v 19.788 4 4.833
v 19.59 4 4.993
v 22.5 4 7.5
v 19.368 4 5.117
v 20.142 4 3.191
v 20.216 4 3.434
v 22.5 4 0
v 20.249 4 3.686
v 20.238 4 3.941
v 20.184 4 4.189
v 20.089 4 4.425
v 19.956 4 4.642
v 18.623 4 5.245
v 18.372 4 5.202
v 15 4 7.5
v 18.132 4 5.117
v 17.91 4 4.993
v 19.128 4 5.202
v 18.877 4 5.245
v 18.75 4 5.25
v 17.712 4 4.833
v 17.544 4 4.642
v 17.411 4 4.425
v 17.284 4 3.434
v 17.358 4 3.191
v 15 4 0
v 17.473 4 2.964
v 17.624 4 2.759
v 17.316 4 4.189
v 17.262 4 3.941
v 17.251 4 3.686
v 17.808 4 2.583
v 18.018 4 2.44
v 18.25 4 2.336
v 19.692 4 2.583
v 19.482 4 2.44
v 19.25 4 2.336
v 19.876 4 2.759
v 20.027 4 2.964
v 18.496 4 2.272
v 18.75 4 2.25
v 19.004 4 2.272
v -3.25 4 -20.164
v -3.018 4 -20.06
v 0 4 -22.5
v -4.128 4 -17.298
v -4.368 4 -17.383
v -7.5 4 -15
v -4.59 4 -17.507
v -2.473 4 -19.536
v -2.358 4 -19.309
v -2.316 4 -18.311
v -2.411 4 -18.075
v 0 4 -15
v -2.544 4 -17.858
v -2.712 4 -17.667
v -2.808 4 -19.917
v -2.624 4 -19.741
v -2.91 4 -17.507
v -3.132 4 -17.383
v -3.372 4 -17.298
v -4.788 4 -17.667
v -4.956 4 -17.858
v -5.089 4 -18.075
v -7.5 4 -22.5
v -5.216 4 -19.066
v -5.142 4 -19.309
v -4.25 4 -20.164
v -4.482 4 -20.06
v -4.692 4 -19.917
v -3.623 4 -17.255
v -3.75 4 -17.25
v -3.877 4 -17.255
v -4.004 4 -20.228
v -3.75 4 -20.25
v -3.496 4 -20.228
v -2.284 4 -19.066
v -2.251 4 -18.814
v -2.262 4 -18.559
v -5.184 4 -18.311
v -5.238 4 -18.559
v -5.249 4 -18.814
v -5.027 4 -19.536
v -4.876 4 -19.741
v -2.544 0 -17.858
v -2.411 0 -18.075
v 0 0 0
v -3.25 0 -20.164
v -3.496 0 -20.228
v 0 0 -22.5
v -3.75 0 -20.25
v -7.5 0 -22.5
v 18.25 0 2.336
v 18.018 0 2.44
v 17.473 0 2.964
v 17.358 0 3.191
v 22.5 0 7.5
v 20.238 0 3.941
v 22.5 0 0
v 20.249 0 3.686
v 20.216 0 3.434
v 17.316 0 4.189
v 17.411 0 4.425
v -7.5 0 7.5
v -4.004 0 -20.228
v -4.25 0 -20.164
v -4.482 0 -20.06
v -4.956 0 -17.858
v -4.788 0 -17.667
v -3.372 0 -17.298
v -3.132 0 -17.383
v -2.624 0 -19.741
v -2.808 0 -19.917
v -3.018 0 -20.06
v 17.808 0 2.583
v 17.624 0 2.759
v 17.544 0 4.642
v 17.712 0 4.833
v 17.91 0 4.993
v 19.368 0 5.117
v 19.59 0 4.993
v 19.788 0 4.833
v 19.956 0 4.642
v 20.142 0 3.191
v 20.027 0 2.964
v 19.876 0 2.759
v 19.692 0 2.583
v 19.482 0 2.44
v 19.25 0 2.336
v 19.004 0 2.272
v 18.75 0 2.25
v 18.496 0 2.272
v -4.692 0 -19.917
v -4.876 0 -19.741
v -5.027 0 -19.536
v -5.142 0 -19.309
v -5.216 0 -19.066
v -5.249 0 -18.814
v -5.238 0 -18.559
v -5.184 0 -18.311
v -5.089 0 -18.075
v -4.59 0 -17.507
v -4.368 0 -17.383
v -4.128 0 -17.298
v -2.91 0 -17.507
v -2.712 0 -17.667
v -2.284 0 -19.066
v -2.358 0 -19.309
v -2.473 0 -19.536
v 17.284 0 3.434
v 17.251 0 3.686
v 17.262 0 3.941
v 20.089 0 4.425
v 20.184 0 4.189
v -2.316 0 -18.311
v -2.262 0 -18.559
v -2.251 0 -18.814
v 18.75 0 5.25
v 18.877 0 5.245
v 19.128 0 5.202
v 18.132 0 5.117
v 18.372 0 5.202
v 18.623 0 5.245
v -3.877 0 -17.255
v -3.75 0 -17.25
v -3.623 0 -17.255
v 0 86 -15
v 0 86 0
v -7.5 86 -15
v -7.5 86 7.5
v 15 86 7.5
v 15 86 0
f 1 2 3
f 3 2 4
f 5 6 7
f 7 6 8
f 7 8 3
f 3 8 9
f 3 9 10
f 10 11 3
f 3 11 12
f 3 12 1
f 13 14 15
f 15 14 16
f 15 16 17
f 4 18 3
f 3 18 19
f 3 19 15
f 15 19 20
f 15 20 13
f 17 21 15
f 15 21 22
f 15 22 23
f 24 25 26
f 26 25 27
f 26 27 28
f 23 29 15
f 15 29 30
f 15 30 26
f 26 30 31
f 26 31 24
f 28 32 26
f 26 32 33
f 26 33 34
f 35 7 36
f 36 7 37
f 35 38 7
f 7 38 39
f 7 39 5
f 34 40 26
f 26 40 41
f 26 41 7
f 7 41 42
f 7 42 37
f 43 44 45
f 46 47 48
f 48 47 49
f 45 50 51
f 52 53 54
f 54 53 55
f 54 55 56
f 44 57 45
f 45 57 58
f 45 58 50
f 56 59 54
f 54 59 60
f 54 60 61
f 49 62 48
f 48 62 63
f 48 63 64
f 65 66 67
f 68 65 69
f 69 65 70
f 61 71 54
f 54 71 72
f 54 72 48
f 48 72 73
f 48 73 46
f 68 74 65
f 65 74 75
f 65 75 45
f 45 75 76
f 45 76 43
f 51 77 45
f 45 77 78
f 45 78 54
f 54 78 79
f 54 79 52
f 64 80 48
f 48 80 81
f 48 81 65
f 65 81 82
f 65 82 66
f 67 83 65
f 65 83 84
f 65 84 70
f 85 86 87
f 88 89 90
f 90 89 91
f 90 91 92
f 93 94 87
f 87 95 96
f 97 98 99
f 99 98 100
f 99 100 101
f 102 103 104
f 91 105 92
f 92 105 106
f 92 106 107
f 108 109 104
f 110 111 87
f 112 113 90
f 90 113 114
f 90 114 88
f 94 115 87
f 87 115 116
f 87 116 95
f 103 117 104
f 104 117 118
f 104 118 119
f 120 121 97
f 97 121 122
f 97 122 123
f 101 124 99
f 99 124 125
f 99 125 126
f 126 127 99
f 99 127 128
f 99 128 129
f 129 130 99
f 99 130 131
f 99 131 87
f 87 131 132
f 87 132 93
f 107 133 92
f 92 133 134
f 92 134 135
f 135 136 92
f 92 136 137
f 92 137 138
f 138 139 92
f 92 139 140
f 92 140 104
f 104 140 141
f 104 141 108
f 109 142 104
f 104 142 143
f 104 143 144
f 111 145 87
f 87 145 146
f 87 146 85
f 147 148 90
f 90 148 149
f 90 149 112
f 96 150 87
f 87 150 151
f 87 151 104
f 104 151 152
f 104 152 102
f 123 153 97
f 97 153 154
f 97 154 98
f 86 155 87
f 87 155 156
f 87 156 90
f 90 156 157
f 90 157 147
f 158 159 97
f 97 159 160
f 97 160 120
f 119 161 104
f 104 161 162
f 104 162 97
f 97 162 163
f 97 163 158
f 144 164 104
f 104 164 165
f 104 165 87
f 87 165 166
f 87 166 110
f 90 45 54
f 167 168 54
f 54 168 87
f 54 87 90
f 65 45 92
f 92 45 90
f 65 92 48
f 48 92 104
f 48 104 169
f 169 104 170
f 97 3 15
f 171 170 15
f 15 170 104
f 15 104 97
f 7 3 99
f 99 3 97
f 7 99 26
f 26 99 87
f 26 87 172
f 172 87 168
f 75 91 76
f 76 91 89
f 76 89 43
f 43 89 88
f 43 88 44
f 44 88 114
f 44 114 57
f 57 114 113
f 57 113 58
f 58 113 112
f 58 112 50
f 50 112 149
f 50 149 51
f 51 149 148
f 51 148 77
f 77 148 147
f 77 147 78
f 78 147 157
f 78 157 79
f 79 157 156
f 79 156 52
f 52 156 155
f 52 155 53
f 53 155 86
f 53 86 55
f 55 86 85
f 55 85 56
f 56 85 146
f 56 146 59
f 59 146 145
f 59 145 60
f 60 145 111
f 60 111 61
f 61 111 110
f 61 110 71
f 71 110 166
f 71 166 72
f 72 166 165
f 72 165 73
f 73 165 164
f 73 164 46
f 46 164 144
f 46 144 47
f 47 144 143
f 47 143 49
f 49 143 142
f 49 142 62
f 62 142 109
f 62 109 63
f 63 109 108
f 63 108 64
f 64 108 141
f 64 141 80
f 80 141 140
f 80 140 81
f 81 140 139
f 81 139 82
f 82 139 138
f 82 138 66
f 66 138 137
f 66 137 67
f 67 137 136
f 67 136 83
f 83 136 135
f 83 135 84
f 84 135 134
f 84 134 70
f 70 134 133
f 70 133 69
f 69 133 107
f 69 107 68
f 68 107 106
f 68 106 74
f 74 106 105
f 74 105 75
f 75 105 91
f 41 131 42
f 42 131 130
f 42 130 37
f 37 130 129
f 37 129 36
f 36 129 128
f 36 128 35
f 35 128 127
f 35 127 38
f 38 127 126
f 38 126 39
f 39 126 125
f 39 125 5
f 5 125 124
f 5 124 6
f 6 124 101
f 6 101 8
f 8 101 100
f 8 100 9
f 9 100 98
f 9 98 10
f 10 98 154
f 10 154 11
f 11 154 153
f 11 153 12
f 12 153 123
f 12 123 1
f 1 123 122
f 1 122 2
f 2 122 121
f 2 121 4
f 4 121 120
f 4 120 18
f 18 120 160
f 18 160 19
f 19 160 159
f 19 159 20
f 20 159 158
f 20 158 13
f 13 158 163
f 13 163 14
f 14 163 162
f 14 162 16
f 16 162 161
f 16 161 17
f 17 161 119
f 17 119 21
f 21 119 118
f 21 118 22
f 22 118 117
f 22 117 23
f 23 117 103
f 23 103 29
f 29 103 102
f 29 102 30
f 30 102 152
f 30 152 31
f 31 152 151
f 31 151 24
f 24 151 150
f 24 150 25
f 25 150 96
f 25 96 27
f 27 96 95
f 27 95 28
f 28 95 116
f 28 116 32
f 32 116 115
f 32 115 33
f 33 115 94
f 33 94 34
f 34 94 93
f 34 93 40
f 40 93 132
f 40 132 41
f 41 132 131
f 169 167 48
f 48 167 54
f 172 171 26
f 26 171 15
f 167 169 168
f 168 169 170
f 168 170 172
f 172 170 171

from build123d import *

# Parameters (mm, degrees)
SKETCH1_R           = 1.5
BOSS_EXTRUDE1_DEPTH = 4
BOSS_EXTRUDE2_DEPTH = 82


with BuildPart() as part:
    # Sketch1 → Boss-Extrude1 (new body)
    with BuildSketch(Plane(origin=(0, 0, 0), x_dir=(1, 0, 0), z_dir=(0, 1, 0))):
        Polygon((0, 0), (15, 0), (22.5, 0), (22.5, -7.5), (15, -7.5), (-7.5, -7.5), (-7.5, 22.5), (0, 22.5), (0, 15), align=None)
        with Locations((-3.75, 18.75)):
            Circle(SKETCH1_R, mode=Mode.SUBTRACT)
        with Locations((18.75, -3.75)):
            Circle(SKETCH1_R, mode=Mode.SUBTRACT)
    extrude(amount=BOSS_EXTRUDE1_DEPTH)

    # Sketch3 → Boss-Extrude2 (add)
    with BuildSketch(Plane(origin=(0, 4, 0), x_dir=(1, 0, 0), z_dir=(0, 1, 0))):
        Polygon((0, 0), (0, 15), (-7.5, 15), (-7.5, -7.5), (15, -7.5), (15, 0), align=None)
    extrude(amount=BOSS_EXTRUDE2_DEPTH)


solid = part.part
